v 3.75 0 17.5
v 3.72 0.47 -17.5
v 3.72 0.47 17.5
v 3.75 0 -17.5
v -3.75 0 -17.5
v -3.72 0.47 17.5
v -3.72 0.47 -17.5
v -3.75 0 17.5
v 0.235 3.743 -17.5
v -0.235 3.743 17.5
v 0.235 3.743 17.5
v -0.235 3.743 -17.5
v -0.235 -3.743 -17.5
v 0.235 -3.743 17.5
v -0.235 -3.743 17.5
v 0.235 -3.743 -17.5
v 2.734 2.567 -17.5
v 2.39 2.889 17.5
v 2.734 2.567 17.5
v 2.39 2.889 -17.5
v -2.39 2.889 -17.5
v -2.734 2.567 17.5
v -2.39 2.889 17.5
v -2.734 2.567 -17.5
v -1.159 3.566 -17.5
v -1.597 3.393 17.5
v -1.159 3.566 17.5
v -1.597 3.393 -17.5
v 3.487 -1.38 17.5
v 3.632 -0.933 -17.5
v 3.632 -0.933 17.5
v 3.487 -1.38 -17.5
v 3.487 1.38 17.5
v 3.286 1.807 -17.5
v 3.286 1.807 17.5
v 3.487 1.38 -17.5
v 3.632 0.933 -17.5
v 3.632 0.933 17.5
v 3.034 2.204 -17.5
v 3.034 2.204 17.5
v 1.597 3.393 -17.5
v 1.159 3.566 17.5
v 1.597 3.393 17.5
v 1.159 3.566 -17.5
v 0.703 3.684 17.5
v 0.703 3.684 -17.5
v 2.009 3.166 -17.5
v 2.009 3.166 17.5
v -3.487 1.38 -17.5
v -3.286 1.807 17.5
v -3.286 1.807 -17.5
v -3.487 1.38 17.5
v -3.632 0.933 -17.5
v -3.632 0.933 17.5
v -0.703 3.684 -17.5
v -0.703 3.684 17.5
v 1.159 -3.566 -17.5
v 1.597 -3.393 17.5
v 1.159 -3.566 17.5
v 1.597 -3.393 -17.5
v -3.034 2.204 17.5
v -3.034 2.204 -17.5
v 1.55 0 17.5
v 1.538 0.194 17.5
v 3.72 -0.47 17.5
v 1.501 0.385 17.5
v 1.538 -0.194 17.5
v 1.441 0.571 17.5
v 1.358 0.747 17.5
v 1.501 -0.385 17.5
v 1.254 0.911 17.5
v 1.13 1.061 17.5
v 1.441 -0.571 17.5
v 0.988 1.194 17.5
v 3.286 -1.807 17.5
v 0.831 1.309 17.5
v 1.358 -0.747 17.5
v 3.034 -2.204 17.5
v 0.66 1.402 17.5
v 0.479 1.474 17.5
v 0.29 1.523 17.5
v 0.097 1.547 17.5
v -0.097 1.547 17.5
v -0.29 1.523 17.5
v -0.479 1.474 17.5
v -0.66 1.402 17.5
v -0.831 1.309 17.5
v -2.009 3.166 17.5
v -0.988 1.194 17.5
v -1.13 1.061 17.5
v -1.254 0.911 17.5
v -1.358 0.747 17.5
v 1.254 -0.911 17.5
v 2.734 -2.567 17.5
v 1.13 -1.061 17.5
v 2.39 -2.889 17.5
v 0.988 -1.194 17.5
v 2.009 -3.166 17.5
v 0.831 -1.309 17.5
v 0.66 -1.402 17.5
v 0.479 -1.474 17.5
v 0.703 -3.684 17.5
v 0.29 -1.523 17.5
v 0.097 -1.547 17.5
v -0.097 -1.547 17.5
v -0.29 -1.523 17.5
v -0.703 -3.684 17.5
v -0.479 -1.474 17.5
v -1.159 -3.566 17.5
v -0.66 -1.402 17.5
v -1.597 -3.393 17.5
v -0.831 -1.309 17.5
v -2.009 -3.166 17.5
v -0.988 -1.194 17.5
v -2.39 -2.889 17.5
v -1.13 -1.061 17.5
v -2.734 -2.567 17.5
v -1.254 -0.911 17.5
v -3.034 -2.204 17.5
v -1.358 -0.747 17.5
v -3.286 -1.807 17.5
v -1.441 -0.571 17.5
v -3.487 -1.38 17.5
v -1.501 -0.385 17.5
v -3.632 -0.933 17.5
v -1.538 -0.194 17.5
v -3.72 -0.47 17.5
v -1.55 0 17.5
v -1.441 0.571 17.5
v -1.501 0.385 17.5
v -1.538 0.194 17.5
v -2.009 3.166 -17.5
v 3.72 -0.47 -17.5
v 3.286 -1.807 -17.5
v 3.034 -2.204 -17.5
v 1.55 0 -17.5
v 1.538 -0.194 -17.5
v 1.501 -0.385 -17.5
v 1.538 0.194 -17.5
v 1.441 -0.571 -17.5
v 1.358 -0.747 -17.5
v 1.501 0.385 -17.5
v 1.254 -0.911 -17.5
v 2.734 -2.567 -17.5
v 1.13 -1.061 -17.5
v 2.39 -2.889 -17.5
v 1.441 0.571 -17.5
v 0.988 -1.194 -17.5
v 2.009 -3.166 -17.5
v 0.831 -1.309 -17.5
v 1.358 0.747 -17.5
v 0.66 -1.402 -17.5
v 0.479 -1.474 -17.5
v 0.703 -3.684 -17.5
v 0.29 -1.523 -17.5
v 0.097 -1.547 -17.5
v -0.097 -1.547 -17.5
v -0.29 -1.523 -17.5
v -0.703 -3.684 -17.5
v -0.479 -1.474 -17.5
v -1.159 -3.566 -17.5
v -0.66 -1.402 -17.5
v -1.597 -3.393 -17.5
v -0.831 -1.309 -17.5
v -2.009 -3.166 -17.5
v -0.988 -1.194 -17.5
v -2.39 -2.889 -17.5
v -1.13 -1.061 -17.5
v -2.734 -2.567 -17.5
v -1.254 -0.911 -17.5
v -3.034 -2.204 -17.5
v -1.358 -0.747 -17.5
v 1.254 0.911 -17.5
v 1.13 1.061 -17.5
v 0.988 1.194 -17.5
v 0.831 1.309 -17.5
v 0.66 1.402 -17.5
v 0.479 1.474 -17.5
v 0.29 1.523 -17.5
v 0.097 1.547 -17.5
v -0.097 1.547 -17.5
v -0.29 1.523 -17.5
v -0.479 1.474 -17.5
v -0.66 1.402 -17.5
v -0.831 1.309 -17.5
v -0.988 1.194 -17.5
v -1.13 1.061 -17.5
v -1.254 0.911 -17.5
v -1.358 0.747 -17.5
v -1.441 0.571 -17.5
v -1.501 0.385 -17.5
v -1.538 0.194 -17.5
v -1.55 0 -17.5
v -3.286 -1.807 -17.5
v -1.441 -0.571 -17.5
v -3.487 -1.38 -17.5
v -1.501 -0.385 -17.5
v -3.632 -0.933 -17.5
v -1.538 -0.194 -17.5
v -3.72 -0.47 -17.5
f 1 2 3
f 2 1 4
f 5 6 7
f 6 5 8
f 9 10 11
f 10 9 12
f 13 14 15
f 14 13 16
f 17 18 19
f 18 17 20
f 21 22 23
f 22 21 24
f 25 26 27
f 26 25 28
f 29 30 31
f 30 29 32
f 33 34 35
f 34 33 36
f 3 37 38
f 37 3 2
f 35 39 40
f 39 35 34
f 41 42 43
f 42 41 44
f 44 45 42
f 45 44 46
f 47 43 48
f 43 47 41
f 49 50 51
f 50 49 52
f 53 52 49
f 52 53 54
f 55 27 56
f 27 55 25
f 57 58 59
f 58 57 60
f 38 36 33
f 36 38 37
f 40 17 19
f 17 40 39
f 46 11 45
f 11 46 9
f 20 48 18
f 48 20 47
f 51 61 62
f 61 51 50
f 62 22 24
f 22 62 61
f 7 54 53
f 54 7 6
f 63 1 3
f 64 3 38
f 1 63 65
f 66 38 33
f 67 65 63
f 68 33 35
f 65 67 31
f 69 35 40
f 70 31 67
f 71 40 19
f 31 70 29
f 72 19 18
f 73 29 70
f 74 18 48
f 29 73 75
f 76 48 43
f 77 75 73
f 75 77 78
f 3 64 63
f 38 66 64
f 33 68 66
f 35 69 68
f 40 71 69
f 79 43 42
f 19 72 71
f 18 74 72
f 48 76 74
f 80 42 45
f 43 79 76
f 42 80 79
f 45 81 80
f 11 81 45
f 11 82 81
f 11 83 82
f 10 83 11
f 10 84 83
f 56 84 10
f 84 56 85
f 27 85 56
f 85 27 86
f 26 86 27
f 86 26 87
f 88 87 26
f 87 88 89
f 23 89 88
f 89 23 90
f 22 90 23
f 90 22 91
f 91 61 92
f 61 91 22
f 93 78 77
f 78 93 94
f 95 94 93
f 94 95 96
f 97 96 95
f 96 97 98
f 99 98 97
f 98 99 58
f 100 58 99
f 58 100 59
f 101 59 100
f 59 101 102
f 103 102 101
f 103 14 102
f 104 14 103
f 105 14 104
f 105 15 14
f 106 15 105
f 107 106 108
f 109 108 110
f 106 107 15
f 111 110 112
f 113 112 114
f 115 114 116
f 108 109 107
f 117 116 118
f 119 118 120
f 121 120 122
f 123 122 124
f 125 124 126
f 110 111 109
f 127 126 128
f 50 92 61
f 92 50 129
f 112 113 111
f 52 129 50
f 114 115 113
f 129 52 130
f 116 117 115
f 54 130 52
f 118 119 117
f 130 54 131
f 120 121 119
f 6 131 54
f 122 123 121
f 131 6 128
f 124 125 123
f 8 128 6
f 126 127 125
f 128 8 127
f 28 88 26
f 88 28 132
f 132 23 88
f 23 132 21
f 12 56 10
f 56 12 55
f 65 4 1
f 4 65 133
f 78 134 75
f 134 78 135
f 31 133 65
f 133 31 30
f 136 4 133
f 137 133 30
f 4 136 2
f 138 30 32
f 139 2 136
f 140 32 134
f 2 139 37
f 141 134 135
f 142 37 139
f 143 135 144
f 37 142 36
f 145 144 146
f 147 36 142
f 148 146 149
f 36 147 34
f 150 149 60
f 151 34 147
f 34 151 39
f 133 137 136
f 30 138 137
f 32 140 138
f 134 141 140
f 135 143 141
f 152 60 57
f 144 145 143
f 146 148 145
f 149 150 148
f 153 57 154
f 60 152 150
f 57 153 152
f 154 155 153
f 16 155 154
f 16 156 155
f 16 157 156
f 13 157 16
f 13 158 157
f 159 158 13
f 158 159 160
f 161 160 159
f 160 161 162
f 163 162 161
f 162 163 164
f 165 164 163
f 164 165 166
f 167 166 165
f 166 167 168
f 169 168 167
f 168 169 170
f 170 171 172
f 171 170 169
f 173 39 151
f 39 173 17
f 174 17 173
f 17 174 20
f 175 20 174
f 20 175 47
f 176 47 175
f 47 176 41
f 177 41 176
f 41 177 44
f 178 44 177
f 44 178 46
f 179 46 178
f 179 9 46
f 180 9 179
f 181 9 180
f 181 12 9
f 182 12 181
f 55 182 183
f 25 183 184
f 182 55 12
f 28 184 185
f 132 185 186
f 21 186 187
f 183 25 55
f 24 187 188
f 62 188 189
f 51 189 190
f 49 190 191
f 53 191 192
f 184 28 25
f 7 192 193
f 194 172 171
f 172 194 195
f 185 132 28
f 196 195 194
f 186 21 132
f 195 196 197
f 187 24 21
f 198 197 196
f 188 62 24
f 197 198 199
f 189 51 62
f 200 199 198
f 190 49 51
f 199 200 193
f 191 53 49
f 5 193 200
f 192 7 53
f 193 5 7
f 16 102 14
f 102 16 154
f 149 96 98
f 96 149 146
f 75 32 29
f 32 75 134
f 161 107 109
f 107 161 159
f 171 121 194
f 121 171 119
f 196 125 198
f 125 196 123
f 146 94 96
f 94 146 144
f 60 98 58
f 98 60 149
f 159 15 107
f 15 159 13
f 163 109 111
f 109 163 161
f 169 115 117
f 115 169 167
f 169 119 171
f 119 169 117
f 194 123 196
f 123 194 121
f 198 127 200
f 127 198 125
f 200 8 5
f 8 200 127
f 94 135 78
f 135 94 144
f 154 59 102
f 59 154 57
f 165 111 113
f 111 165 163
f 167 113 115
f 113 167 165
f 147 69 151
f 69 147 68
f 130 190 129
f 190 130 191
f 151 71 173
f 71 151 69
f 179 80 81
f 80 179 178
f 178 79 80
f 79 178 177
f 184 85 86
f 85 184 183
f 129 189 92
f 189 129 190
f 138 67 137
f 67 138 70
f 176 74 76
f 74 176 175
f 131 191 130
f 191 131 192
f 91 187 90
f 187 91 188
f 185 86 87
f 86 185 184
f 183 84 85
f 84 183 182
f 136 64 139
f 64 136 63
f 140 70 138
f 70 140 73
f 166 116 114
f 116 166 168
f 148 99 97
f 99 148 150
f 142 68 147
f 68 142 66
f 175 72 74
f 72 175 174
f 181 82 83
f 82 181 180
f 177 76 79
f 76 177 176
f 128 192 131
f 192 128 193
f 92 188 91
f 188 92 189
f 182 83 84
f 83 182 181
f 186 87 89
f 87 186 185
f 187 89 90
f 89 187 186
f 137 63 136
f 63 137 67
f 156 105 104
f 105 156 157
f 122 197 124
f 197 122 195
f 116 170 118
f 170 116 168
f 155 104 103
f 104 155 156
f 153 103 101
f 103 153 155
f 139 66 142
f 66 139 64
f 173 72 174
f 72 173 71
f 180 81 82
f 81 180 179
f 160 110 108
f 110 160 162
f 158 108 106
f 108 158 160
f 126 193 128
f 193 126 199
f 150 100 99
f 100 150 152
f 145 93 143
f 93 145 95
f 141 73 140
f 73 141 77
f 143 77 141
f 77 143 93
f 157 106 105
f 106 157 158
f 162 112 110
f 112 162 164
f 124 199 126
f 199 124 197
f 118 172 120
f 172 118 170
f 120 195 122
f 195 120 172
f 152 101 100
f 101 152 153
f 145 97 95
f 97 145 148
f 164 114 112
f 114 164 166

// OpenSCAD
$fn = 50;


difference() {
	union() {
		translate(v = [0, 0, -17.5000000000]) {
			cylinder(h = 35, r = 3.7500000000);
		}
	}
	union() {
		translate(v = [0, 0, -100.0000000000]) {
			cylinder(h = 200, r = 1.5500000000);
		}
	}
}
